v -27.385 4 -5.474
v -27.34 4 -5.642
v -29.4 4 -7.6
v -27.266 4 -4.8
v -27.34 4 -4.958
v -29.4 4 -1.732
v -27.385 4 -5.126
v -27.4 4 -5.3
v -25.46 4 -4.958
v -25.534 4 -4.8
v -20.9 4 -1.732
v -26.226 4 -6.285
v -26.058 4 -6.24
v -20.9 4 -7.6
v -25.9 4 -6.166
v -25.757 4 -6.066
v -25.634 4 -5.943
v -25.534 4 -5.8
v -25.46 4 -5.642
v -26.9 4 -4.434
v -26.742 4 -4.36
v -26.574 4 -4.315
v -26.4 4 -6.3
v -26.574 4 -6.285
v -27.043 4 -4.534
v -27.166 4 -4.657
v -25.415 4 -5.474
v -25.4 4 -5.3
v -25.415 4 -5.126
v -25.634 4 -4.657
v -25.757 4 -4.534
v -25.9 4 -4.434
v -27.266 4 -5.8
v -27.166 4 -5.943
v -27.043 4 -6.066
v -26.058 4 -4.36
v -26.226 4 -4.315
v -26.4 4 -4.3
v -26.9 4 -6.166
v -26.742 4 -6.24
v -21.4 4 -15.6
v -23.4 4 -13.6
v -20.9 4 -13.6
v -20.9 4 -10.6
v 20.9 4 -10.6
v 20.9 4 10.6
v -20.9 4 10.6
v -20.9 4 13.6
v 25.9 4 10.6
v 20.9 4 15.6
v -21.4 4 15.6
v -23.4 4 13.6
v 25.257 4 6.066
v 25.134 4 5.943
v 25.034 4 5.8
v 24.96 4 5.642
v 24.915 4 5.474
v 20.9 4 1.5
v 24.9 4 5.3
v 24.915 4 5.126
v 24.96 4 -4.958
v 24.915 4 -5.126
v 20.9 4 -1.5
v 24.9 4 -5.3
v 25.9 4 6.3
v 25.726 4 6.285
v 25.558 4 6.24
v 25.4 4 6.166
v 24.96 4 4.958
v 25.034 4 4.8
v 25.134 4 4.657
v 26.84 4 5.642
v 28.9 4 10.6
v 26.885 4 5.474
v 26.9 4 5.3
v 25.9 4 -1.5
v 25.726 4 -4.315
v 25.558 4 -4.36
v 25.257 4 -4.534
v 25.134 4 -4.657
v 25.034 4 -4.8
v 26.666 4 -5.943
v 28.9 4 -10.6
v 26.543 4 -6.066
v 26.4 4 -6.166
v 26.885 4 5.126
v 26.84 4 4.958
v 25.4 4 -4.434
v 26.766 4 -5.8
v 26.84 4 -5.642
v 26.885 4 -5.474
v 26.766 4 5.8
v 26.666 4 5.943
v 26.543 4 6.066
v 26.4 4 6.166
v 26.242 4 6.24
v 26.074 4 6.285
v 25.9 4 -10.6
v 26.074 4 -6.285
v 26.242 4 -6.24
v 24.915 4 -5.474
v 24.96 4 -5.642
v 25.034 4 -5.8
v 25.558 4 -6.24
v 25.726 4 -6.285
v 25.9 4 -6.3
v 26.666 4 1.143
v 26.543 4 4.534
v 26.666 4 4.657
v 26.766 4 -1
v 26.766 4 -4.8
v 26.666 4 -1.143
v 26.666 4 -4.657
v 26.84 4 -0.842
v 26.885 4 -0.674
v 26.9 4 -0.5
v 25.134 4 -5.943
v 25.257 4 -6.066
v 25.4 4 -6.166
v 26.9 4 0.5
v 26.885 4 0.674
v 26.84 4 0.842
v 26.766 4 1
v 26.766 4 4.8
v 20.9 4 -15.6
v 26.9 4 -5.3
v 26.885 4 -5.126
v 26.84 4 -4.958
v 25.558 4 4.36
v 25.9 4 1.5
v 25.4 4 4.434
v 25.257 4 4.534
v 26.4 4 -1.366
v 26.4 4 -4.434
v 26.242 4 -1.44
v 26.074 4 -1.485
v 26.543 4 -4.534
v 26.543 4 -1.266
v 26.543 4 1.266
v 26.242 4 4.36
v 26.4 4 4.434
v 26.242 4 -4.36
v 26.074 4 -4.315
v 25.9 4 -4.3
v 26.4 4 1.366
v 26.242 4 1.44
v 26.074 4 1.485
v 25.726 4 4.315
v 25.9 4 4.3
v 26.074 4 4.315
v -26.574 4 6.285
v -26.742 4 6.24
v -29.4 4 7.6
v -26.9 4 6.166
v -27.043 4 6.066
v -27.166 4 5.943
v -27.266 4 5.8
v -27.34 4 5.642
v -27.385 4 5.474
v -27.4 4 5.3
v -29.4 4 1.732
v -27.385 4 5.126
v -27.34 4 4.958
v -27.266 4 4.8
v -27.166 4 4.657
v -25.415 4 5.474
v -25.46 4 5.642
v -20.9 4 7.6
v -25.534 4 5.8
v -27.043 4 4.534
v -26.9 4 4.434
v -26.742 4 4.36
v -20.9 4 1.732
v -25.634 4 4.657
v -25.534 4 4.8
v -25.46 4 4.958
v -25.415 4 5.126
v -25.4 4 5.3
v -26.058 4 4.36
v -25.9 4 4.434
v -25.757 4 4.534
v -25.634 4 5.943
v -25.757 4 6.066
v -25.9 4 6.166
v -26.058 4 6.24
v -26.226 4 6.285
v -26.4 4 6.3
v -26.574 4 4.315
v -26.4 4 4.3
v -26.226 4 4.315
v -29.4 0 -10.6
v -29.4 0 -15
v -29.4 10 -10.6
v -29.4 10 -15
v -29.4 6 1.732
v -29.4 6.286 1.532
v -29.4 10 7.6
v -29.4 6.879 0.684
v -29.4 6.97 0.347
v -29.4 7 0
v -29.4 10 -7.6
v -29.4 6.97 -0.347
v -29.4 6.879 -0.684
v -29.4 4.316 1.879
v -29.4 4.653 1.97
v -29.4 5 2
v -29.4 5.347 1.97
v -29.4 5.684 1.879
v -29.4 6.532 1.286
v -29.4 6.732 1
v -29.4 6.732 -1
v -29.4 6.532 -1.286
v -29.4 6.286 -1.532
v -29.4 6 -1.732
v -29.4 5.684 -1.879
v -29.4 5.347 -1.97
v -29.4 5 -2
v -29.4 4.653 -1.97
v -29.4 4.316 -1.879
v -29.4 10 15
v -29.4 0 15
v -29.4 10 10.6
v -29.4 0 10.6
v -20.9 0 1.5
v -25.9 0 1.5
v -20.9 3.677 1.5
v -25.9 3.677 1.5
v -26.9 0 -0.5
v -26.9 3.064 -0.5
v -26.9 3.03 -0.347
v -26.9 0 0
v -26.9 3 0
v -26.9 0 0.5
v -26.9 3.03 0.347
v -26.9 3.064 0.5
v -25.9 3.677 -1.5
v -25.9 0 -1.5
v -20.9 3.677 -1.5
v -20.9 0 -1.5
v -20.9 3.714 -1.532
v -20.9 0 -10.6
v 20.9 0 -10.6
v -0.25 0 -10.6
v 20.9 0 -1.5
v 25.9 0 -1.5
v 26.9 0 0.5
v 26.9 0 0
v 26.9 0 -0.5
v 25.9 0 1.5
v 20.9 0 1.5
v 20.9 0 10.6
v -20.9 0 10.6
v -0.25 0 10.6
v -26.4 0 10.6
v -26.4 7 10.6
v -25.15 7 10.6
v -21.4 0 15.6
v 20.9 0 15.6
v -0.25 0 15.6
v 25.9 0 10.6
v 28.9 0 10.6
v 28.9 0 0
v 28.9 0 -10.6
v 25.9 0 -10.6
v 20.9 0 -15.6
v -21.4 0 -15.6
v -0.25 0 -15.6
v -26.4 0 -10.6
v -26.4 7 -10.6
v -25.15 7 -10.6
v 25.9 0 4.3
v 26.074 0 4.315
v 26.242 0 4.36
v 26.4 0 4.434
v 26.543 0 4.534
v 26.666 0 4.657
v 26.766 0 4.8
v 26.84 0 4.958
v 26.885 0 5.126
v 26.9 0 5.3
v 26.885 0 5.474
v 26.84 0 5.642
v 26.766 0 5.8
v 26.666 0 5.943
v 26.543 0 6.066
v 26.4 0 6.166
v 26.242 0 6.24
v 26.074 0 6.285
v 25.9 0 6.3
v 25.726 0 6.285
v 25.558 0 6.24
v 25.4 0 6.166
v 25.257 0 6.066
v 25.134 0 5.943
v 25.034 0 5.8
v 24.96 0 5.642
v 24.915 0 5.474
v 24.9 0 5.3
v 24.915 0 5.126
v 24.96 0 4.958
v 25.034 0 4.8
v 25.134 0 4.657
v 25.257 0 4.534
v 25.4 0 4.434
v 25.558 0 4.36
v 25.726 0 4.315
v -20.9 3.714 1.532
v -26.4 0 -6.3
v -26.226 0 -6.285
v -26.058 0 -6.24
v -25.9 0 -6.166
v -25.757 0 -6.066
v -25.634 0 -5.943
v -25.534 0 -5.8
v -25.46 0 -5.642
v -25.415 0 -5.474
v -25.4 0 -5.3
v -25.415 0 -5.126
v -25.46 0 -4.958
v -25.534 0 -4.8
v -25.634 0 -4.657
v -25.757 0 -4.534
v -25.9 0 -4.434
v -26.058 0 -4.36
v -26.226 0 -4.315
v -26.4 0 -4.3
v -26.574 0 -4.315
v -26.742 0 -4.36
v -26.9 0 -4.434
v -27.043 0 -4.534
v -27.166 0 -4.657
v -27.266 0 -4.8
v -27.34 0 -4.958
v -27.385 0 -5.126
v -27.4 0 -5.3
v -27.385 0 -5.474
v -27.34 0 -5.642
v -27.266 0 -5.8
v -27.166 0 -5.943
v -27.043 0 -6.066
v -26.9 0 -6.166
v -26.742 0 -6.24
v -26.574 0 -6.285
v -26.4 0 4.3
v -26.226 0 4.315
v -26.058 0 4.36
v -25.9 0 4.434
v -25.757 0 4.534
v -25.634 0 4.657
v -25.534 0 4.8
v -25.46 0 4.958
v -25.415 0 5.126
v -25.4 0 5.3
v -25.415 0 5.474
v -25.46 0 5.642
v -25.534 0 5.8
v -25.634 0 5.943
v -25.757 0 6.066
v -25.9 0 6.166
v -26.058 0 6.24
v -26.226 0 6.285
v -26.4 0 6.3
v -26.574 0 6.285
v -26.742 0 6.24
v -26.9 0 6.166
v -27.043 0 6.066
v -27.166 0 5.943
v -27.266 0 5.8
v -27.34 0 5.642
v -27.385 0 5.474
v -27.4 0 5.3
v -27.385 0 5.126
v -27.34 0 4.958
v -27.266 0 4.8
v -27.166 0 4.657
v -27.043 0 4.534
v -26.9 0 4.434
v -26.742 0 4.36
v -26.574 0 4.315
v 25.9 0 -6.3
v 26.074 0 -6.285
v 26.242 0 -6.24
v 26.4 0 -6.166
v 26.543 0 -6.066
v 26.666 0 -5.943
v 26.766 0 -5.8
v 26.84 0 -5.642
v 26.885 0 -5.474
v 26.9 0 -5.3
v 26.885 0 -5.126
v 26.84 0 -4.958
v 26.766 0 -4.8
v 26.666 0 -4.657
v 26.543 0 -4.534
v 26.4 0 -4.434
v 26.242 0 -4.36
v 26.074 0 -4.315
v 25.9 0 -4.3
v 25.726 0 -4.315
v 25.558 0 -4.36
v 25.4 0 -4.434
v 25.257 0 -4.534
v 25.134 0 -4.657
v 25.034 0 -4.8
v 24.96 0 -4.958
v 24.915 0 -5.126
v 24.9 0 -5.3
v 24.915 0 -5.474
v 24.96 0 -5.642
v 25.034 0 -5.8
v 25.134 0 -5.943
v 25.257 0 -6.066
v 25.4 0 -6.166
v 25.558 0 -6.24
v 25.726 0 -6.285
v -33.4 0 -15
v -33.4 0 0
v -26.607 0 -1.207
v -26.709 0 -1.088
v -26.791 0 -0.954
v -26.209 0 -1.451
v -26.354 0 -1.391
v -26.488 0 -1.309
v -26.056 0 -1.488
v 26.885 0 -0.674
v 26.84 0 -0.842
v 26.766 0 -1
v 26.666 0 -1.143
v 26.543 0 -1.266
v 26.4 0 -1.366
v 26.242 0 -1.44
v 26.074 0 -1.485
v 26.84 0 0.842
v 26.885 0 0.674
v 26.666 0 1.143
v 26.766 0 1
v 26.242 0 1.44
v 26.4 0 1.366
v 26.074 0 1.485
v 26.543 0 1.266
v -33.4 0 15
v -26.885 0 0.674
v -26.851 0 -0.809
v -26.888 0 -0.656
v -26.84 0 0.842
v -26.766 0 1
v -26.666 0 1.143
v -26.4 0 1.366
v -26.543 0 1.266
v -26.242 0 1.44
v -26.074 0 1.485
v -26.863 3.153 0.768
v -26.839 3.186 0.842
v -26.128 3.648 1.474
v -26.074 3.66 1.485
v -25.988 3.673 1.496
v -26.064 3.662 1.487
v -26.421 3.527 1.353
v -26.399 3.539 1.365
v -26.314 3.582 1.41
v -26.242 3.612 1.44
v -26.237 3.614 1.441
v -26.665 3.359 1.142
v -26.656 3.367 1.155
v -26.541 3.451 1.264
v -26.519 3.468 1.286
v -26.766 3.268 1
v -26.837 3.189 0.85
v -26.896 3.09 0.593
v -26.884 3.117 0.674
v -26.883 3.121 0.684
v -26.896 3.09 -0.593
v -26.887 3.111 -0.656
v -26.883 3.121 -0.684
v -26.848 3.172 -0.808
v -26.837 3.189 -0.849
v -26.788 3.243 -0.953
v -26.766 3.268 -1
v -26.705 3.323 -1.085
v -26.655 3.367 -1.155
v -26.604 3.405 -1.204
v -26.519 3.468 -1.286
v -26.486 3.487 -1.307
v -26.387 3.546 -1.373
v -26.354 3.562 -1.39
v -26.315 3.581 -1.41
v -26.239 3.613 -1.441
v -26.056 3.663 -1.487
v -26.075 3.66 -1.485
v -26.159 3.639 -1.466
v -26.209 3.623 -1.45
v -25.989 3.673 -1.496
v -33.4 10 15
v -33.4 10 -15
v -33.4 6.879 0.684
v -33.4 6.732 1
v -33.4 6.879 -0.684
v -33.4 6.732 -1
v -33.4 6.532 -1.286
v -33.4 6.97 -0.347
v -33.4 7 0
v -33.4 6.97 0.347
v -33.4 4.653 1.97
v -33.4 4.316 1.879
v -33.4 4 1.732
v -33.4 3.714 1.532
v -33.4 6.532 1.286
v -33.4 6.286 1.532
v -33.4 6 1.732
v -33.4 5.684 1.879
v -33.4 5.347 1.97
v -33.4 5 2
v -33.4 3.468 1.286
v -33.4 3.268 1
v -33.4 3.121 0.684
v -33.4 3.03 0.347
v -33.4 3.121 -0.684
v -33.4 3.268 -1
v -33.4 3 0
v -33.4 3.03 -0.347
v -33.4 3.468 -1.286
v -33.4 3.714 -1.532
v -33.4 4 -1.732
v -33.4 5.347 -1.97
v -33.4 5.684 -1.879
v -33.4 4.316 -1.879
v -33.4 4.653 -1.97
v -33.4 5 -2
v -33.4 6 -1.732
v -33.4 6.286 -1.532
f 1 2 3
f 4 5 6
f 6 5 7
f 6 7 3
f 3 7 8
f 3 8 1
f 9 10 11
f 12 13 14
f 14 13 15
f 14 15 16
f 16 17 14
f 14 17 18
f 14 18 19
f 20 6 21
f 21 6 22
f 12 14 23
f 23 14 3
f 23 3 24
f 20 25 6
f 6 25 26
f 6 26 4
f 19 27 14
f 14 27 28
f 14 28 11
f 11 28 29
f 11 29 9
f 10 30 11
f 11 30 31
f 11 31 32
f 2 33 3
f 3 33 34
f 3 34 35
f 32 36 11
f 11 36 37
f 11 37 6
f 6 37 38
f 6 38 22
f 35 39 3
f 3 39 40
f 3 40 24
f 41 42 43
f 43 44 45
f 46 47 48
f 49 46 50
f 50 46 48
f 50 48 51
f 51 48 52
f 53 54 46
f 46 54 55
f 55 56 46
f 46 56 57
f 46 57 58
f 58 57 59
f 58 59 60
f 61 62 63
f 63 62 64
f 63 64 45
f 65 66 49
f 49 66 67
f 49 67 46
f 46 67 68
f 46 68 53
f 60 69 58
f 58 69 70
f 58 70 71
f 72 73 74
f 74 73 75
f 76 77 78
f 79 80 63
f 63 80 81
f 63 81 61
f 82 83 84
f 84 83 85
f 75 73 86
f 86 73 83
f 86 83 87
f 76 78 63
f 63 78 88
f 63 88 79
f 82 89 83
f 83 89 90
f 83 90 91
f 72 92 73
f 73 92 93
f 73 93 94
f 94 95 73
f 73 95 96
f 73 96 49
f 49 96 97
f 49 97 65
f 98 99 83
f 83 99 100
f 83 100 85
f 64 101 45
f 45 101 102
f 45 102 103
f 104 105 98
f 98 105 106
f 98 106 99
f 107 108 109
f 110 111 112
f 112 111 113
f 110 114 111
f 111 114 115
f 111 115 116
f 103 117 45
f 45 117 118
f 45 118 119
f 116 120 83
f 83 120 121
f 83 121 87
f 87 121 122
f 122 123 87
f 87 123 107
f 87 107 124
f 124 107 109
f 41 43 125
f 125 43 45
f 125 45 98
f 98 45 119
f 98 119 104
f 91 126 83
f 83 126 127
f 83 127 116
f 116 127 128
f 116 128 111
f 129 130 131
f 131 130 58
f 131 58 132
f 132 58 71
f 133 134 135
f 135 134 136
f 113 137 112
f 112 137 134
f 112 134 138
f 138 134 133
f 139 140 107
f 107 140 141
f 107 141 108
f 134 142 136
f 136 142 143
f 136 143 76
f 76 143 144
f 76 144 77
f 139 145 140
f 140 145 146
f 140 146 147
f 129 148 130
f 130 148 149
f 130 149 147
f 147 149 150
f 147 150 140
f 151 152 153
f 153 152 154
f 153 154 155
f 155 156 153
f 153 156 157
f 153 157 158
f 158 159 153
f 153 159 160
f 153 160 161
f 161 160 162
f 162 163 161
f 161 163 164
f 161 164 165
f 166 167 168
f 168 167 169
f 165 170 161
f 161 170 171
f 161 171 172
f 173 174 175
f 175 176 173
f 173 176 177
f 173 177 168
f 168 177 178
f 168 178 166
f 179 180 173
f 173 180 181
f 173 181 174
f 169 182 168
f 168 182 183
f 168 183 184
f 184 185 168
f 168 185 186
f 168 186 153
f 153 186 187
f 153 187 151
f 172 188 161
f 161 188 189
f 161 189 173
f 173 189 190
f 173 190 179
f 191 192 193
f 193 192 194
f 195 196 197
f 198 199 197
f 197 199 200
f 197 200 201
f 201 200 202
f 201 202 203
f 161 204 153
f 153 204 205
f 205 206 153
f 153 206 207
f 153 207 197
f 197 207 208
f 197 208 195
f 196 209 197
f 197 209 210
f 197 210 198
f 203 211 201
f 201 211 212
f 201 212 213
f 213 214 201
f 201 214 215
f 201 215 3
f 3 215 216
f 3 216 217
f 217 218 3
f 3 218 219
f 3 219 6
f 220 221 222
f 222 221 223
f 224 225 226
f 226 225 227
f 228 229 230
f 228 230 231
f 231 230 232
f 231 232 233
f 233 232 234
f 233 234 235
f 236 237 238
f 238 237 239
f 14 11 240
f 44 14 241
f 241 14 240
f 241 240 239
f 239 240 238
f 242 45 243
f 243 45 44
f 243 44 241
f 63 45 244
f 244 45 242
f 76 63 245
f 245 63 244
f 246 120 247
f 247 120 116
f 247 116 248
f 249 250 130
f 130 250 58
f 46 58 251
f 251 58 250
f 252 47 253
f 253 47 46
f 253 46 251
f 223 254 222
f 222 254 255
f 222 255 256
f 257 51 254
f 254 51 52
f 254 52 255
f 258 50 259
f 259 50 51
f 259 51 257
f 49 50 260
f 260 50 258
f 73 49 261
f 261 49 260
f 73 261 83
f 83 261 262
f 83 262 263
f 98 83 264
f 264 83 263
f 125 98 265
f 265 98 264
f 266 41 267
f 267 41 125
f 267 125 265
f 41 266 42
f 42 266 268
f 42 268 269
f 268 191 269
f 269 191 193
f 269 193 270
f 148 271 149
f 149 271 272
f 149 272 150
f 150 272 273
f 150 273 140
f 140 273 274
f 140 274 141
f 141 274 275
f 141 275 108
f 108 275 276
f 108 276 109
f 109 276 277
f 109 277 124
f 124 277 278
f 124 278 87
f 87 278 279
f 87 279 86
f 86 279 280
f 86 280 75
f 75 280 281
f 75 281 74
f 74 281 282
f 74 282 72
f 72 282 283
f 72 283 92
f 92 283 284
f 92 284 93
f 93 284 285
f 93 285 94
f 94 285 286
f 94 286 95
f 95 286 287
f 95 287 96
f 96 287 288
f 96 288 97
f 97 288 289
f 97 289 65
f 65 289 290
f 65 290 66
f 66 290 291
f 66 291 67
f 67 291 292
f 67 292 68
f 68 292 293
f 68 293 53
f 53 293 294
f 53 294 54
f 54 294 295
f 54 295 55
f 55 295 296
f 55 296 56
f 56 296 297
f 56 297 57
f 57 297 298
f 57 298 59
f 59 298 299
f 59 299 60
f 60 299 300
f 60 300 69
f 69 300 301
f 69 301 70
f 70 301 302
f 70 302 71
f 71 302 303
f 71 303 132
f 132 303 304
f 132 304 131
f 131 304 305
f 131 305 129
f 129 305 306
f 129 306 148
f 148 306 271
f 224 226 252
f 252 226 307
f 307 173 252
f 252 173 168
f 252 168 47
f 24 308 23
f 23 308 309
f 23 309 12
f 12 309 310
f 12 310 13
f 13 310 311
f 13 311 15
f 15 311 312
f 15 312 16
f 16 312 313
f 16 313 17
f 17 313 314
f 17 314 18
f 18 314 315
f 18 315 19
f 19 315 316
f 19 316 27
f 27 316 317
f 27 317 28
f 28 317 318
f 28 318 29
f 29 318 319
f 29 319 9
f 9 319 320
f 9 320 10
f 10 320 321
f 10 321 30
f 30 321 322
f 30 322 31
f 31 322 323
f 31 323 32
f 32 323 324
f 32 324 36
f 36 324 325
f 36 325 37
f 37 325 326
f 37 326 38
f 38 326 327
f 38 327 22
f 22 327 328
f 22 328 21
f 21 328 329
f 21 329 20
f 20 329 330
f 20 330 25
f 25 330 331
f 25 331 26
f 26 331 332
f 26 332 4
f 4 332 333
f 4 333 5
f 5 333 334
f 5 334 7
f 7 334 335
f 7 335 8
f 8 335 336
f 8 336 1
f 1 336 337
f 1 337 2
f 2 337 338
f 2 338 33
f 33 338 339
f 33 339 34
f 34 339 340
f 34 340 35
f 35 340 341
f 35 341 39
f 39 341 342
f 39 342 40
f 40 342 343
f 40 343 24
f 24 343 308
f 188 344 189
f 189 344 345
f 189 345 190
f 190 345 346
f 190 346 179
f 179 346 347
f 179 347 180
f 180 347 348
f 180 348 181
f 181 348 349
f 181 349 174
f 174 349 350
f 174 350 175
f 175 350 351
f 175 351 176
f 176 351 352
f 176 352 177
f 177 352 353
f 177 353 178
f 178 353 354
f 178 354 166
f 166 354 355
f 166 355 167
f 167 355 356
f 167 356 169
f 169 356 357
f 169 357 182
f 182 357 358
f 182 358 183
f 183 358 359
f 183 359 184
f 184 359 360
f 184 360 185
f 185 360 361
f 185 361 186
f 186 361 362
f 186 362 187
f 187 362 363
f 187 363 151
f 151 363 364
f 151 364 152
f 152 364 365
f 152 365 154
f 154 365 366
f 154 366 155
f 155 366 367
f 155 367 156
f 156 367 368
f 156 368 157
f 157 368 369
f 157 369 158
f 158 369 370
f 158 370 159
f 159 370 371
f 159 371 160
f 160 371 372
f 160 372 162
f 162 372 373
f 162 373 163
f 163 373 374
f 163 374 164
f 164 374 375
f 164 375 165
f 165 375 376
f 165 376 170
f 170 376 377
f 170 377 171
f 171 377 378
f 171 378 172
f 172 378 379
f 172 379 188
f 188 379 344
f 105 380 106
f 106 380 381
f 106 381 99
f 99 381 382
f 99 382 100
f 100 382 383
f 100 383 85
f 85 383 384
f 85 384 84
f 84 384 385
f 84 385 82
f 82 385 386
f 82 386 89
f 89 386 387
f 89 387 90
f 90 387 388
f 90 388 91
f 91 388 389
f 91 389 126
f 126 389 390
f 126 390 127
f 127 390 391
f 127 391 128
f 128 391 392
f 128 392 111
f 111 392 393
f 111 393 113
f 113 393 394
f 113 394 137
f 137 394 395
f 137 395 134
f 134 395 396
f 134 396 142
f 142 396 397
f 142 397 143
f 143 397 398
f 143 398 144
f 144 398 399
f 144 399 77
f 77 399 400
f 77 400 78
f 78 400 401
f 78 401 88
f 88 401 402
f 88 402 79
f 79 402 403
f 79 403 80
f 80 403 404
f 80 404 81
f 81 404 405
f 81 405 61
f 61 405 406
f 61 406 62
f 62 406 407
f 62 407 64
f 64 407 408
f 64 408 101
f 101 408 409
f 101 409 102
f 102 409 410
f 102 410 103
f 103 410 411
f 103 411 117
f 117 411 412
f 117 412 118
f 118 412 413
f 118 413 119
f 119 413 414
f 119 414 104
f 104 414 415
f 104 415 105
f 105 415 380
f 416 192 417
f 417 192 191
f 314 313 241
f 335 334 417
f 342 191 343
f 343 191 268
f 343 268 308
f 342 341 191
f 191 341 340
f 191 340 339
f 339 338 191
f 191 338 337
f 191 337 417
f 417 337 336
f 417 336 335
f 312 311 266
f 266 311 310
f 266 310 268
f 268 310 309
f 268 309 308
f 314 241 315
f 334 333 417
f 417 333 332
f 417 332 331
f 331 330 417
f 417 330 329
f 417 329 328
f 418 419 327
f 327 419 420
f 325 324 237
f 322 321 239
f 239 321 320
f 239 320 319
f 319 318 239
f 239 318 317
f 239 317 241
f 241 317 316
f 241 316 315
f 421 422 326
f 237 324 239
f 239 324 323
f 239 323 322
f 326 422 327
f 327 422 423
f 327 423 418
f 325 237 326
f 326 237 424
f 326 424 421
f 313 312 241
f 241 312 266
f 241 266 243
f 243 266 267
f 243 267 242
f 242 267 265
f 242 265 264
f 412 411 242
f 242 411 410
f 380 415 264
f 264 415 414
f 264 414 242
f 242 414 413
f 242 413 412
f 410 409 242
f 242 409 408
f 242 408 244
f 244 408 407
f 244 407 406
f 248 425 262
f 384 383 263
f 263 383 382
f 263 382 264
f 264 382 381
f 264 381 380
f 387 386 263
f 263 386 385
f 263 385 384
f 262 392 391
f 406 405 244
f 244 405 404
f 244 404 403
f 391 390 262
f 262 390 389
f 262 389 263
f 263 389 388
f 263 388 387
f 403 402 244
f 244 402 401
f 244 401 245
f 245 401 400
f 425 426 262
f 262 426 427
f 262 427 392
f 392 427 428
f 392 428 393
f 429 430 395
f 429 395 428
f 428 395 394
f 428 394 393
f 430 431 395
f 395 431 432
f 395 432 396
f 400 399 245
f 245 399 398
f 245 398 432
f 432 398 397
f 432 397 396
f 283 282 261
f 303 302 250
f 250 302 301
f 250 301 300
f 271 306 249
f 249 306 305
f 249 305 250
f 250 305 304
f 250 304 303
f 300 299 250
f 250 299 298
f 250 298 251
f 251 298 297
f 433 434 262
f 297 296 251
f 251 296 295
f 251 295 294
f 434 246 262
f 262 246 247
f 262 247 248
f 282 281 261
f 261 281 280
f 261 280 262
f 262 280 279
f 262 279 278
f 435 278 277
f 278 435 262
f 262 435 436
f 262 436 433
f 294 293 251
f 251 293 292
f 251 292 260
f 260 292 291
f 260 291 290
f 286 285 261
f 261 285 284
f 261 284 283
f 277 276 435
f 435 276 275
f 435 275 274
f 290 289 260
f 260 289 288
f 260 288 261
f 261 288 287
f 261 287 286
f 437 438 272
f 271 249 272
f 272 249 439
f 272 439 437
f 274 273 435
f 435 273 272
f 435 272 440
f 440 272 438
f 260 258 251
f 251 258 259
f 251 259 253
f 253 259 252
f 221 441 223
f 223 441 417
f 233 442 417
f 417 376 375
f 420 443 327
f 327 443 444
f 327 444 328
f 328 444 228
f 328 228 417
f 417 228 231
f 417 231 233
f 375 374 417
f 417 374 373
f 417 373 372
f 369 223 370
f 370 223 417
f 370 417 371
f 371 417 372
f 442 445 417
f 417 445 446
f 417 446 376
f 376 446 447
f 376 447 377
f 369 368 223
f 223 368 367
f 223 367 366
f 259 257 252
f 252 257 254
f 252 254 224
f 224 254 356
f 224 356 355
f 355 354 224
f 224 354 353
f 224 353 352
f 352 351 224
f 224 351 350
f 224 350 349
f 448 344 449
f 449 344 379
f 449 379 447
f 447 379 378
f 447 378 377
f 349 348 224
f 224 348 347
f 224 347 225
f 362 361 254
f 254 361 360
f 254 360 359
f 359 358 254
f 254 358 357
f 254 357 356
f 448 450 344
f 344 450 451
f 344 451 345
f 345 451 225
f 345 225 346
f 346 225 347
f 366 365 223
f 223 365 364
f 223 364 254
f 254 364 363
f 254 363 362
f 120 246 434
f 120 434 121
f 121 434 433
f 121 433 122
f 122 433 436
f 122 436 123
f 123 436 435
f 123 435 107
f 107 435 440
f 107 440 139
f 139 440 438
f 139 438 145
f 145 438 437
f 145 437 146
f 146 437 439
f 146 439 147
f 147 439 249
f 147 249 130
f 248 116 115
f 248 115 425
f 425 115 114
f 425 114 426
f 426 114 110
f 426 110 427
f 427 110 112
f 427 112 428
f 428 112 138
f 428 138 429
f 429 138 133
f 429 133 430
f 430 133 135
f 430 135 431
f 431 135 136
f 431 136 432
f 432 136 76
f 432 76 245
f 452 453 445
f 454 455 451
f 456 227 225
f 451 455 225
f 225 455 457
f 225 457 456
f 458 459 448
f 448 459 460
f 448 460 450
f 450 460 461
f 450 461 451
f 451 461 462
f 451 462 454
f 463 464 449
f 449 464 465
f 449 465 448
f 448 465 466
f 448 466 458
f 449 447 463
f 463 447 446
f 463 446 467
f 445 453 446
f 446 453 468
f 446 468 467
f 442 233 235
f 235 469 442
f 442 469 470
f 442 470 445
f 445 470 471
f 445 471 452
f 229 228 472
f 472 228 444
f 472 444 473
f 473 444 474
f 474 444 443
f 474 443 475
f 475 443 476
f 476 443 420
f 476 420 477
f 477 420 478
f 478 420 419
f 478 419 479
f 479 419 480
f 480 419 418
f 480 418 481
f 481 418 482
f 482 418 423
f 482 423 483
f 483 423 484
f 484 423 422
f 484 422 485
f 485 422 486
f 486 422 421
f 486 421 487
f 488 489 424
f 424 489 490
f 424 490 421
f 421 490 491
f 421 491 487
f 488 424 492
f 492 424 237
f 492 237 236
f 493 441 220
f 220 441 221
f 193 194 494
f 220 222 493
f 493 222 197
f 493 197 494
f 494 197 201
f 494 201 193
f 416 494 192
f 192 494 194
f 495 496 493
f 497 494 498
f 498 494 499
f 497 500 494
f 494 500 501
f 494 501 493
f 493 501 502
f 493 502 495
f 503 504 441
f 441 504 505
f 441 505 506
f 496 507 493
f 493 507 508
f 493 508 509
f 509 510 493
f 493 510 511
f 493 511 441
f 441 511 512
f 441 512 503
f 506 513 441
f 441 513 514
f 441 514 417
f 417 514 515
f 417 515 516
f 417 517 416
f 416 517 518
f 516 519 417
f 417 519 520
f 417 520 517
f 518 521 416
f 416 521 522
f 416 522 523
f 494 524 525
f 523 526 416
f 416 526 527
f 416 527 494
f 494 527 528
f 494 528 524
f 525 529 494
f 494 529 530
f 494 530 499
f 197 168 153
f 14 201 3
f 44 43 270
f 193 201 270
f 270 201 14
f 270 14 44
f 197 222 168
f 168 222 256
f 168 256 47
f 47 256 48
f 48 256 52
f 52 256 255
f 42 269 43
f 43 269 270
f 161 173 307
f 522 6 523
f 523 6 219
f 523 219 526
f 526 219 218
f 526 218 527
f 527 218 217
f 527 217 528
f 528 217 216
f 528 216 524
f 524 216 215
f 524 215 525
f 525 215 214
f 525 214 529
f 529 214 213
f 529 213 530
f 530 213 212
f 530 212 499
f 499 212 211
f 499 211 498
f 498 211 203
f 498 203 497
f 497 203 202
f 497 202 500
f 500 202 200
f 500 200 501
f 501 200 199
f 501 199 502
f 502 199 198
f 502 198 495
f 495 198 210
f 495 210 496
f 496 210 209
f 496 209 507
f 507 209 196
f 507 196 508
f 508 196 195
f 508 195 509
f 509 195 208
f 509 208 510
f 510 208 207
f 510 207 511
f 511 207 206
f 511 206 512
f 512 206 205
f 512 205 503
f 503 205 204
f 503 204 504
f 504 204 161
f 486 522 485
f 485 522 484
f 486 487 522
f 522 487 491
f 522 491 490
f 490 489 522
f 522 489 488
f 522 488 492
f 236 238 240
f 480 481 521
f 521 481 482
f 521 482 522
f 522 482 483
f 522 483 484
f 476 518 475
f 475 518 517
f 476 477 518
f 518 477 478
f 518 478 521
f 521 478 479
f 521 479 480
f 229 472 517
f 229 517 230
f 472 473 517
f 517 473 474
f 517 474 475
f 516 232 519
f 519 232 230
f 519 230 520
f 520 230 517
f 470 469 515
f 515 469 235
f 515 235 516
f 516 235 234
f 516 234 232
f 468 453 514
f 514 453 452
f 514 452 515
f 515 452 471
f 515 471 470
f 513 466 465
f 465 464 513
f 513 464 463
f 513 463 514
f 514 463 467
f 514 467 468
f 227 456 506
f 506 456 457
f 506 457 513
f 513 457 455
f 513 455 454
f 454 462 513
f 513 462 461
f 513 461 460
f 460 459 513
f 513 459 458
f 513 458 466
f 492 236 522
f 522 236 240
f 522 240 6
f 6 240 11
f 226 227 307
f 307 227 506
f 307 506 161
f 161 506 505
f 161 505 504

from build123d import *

# Parameters (mm, degrees)
SKETCH1_R           = 1
BOSS_EXTRUDE1_DEPTH = 4
FILLET1_R           = 1
SKETCH2_W           = 30
SKETCH2_H           = 10
BOSS_EXTRUDE2_DEPTH = 4
SKETCH3_W           = 8.5
SKETCH3_H           = 3
BOSS_EXTRUDE3_DEPTH = 6
CUT_EXTRUDE1_DEPTH  = 44.611924975
CHAMFER3_SIZE       = 3
CUT_EXTRUDE2_REACH  = 66.997
SKETCH5_R           = 2


with BuildPart() as part:
    # Sketch1 → Boss-Extrude1 (new body)
    with BuildSketch(Plane(origin=(0, 0, 0), x_dir=(1, 0, 0), z_dir=(0, 1, 0))):
        Polygon((-21.4, 15.6), (-26.4, 10.6), (-29.4, 10.6), (-29.4, -10.6), (-26.4, -10.6), (-21.4, -15.6), (20.9, -15.6), (25.9, -10.6), (28.9, -10.6), (28.9, 10.6), (25.9, 10.6), (20.9, 15.6), align=None)
        Polygon((20.9, -1.5), (20.9, -10.6), (-20.9, -10.6), (-20.9, -1.5), (-26.9, -1.5), (-26.9, 1.5), (-20.9, 1.5), (-20.9, 10.6), (20.9, 10.6), (20.9, 1.5), (26.9, 1.5), (26.9, -1.5), align=None, mode=Mode.SUBTRACT)
        with Locations(Location((-26.4, 5.3, 0), (0, 0, 270))):
            Circle(SKETCH1_R, mode=Mode.SUBTRACT)
        with Locations(Location((-26.4, -5.3, 0), (0, 0, 270))):
            Circle(SKETCH1_R, mode=Mode.SUBTRACT)
        with Locations(Location((25.9, -5.3, 0), (0, 0, 270))):
            Circle(SKETCH1_R, mode=Mode.SUBTRACT)
        with Locations(Location((25.9, 5.3, 0), (0, 0, 270))):
            Circle(SKETCH1_R, mode=Mode.SUBTRACT)
    extrude(amount=BOSS_EXTRUDE1_DEPTH)

    # Fillet1
    fillet1_edges = [part.edges().sort_by_distance(p)[0] for p in [
        (26.9, 2, 1.5),
        (26.9, 2, -1.5),
        (-26.9, 2, -1.5),
        (-26.9, 2, 1.5),
    ]]
    fillet(fillet1_edges, radius=FILLET1_R)

    # Sketch2 → Boss-Extrude2 (add)
    with BuildSketch(Plane.ZY.offset(29.4)):
        with Locations((0, 5)):
            Rectangle(SKETCH2_W, SKETCH2_H)
    extrude(amount=BOSS_EXTRUDE2_DEPTH)

    # Sketch3 → Boss-Extrude3 (add)
    with BuildSketch(Plane(origin=(0, 4, 0), x_dir=(1, 0, 0), z_dir=(0, 1, 0))):
        with Locations((-25.15, -9.1)):
            Rectangle(SKETCH3_W, SKETCH3_H)
        with Locations((-25.15, 9.1)):
            Rectangle(SKETCH3_W, SKETCH3_H)
    extrude(amount=BOSS_EXTRUDE3_DEPTH)

    # Sketch4 → Cut-Extrude1 (cut, through all)
    with BuildSketch(Plane(origin=(0, 0, -10.6), x_dir=(-1, 0, 0), z_dir=(0, 0, -1))):
        Polygon((20.9, 4), (29.4, 10), (20.9, 10), align=None)
    extrude(amount=-CUT_EXTRUDE1_DEPTH, mode=Mode.SUBTRACT)

    # Chamfer3
    # the kernel refuses this chamfer: 3 mm, written as the material it adds along each edge
    with BuildSketch(Plane(origin=(-13.184951036, 4, 10.6), x_dir=(0, -0.02749587661058635, 0.9996219169112968), z_dir=(-1, 0, 0))) as chamfer3_piece_1_section:
        Polygon((CHAMFER3_SIZE * 0.999621916911, CHAMFER3_SIZE * 0.0274958766106), (-CHAMFER3_SIZE * 0.0274958766106, CHAMFER3_SIZE * 0.999621916911), (0, 0), align=None)
    chamfer3_piece_1 = extrude(amount=20.930097928, mode=Mode.PRIVATE)
    chamfer3_piece_1 = split(chamfer3_piece_1, bisect_by=Plane(origin=(-24.611993243, 4.851351351, 12.388006757), z_dir=(0.7071067811865483, 0, -0.7071067811865467)), keep=Keep.TOP, mode=Mode.PRIVATE)
    chamfer3_piece_1 = split(chamfer3_piece_1, bisect_by=Plane(origin=(-23.221105892, 5.638427689, 11.552702703), z_dir=(-0.5766831975986547, -0.8169678632647621, 0)), keep=Keep.TOP, mode=Mode.PRIVATE)
    add(chamfer3_piece_1)
    with BuildSketch(Plane(origin=(-13.184951036, 4, -10.6), x_dir=(-1.6712331566303747e-15, -0.02749587661058635, -0.9996219169112968), z_dir=(-1, 0, 0))) as chamfer3_piece_2_section:
        Polygon((CHAMFER3_SIZE * 0.999621916911, -CHAMFER3_SIZE * 0.0274958766106), (-CHAMFER3_SIZE * 0.0274958766106, -CHAMFER3_SIZE * 0.999621916911), (0, 0), align=None)
    chamfer3_piece_2 = extrude(amount=20.930097928, mode=Mode.PRIVATE)
    chamfer3_piece_2 = split(chamfer3_piece_2, bisect_by=Plane(origin=(-24.611993243, 4.851351351, -12.388006757), z_dir=(0.7071067811865487, 0, 0.7071067811865465)), keep=Keep.TOP, mode=Mode.PRIVATE)
    chamfer3_piece_2 = split(chamfer3_piece_2, bisect_by=Plane(origin=(-23.221105892, 5.638427689, -11.552702703), z_dir=(-0.5766831975986547, -0.8169678632647621, 0)), keep=Keep.TOP, mode=Mode.PRIVATE)
    add(chamfer3_piece_2)

    # Sketch5 → Cut-Extrude2 (cut, up to next)
    with BuildSketch(Plane.ZY.offset(33.4), mode=Mode.PRIVATE) as cut_extrude2_sk1:
        with Locations((0, 5)):
            Circle(SKETCH5_R)
    cut_extrude2_tool1 = extrude(cut_extrude2_sk1.sketch, amount=-CUT_EXTRUDE2_REACH, mode=Mode.PRIVATE) & part.part
    add(cut_extrude2_tool1.solids().sort_by_distance((-33.4, 5, 0))[0], mode=Mode.SUBTRACT)


solid = part.part
